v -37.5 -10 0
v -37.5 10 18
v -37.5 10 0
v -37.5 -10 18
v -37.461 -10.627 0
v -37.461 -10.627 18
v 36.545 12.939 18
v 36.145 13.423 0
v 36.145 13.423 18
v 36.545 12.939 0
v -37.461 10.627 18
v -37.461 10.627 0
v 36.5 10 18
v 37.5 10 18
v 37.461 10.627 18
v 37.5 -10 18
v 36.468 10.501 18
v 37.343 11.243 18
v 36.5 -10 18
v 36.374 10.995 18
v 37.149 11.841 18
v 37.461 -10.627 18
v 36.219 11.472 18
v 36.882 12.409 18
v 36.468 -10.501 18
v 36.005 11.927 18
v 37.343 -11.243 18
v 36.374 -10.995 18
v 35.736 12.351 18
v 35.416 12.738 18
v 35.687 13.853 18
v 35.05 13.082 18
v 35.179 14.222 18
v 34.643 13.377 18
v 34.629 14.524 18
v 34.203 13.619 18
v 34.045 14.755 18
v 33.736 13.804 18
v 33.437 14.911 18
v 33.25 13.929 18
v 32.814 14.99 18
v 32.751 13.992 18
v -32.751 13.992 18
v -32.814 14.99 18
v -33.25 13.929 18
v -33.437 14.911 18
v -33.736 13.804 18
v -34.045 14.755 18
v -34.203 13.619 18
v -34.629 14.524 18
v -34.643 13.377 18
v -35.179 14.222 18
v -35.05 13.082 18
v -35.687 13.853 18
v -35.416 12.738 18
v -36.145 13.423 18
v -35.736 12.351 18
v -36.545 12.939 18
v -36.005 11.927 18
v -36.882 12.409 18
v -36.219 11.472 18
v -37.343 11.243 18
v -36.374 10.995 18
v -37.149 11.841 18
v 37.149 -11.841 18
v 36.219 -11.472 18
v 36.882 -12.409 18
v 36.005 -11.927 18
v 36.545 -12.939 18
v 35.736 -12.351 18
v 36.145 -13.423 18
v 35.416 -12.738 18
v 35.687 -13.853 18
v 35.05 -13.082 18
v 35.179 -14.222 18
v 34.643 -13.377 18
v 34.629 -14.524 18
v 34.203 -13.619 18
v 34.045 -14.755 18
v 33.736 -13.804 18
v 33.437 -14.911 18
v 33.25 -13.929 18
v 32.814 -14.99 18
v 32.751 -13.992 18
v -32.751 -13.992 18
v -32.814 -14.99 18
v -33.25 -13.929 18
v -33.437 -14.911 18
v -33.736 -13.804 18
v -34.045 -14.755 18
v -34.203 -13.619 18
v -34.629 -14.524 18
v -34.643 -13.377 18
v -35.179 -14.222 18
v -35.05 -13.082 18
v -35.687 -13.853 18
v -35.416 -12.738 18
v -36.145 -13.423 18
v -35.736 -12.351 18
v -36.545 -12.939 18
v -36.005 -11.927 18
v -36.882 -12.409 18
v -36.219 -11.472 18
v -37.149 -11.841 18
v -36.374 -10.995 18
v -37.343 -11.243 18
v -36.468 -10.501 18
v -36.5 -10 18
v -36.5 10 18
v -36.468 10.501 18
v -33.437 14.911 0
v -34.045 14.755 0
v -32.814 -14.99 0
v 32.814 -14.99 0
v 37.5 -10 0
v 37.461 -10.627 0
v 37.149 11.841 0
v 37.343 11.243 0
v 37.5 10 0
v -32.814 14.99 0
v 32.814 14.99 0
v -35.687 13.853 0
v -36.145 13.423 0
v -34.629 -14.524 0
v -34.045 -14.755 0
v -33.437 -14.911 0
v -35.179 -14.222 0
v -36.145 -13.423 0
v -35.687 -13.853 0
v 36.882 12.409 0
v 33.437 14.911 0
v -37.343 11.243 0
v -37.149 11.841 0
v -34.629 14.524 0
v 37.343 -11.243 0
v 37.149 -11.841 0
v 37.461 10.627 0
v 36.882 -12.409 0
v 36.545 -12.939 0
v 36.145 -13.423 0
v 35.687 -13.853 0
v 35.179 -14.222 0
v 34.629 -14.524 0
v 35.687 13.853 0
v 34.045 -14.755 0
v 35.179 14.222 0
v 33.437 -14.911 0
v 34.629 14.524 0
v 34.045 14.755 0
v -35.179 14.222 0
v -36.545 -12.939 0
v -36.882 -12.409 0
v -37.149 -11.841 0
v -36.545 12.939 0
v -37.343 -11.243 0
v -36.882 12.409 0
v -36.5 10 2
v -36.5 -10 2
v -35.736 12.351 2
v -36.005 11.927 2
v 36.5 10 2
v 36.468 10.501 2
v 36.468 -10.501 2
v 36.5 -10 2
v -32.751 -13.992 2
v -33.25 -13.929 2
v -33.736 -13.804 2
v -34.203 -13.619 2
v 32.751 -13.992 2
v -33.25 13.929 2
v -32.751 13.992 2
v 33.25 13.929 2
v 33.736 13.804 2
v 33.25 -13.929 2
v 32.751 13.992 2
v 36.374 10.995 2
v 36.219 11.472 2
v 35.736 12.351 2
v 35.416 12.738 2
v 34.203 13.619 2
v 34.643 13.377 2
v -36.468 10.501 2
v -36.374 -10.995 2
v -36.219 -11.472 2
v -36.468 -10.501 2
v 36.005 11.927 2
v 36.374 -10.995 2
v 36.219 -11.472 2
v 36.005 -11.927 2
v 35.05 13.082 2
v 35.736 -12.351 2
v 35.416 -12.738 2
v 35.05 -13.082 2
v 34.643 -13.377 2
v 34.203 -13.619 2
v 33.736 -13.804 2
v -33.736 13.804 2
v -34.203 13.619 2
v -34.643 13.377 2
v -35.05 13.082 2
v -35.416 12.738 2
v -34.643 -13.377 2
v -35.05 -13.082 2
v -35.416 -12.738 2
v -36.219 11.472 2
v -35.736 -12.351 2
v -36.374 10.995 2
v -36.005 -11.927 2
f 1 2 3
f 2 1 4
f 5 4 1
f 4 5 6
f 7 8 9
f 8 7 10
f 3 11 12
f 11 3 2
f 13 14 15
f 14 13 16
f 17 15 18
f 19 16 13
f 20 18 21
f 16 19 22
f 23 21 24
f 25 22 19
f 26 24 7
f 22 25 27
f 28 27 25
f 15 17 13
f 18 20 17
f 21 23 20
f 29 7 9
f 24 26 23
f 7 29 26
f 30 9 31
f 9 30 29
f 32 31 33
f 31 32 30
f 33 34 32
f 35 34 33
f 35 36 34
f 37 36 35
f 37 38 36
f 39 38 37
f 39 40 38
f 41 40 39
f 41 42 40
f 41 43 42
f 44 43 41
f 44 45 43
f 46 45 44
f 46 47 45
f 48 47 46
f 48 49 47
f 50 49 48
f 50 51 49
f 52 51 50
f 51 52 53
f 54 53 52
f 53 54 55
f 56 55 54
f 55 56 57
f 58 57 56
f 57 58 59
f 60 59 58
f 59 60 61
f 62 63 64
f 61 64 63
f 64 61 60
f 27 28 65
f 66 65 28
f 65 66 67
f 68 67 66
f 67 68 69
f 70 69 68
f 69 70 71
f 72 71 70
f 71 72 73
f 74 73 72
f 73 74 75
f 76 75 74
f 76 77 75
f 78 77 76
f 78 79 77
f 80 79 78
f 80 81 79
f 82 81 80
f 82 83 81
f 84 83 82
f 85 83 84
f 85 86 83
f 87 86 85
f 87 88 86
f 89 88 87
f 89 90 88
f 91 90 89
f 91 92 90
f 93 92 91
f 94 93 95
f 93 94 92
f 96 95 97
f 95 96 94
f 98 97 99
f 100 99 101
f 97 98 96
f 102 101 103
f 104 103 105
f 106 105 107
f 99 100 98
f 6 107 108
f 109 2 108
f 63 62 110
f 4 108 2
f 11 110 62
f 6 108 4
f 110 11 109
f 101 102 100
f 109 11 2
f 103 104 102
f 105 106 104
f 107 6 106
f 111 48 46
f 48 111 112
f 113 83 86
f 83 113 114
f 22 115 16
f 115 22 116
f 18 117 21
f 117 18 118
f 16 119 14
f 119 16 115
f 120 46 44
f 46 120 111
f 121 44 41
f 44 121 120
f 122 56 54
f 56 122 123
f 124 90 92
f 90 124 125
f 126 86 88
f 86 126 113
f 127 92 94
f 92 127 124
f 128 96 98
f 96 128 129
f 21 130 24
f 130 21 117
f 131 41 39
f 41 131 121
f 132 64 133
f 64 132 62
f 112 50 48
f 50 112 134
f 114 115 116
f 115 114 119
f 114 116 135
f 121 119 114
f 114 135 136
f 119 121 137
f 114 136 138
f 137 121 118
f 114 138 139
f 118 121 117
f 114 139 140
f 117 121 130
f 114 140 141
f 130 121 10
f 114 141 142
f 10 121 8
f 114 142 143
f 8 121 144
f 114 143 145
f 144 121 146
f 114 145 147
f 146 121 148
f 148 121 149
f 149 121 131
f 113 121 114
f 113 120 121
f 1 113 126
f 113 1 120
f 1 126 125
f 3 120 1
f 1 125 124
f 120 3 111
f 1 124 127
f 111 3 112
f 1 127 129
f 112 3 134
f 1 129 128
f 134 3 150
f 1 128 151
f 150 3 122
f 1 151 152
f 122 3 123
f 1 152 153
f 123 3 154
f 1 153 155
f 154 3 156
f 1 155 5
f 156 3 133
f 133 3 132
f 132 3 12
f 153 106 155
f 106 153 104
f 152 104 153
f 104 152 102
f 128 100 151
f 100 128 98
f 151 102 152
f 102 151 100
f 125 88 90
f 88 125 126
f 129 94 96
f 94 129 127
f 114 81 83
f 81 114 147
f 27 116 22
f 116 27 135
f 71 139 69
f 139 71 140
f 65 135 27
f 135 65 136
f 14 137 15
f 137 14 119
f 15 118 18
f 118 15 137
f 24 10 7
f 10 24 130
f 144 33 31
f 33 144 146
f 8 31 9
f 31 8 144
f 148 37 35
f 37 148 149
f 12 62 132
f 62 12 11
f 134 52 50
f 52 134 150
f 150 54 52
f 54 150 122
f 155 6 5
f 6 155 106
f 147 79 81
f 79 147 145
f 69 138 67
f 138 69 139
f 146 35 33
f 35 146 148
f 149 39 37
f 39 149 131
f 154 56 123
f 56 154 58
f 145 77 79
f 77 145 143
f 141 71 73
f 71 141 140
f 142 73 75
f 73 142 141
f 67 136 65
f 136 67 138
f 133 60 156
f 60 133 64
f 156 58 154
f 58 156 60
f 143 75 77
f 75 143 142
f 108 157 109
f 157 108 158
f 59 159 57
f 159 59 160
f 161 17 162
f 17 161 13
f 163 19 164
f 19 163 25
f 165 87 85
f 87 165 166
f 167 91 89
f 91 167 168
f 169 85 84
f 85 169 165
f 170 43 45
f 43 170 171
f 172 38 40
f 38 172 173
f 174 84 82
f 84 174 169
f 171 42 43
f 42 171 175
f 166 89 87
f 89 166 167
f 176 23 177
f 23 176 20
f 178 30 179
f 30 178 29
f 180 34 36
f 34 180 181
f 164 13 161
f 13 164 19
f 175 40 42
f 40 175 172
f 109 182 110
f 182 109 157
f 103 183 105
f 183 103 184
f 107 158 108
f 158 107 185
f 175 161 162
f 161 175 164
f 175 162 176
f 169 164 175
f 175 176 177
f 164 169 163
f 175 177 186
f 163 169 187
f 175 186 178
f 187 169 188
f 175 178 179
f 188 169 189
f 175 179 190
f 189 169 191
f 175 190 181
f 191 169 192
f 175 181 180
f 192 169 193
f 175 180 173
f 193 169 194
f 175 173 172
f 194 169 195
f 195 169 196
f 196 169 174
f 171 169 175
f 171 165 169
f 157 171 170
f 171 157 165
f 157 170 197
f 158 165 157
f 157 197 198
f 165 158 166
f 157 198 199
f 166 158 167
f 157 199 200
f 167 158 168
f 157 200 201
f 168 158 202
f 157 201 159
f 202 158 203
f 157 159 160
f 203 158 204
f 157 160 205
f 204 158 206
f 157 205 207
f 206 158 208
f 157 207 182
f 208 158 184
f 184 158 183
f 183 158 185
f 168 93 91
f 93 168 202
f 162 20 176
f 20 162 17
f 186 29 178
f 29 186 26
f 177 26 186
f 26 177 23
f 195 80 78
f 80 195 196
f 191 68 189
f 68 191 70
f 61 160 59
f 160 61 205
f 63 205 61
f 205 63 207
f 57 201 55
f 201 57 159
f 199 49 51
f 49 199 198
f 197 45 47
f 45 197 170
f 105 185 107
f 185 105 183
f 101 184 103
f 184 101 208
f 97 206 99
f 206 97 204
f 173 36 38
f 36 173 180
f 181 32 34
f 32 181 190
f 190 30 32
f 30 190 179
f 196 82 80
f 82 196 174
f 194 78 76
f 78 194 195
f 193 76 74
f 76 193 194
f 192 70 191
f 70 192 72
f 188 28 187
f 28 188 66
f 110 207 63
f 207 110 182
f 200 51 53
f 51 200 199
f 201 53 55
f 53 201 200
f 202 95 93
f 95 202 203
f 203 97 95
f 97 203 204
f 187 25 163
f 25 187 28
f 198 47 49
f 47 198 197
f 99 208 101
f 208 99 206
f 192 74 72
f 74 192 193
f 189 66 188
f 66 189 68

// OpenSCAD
$fn = 50;


difference() {
	union() {
		hull() {
			translate(v = [-32.5000000000, 10.0000000000, 0]) {
				cylinder(h = 18, r = 5);
			}
			translate(v = [32.5000000000, 10.0000000000, 0]) {
				cylinder(h = 18, r = 5);
			}
			translate(v = [-32.5000000000, -10.0000000000, 0]) {
				cylinder(h = 18, r = 5);
			}
			translate(v = [32.5000000000, -10.0000000000, 0]) {
				cylinder(h = 18, r = 5);
			}
		}
	}
	union() {
		translate(v = [0, 0, 2]) {
			hull() {
				translate(v = [-32.5000000000, 10.0000000000, 0]) {
					cylinder(h = 16, r = 4);
				}
				translate(v = [32.5000000000, 10.0000000000, 0]) {
					cylinder(h = 16, r = 4);
				}
				translate(v = [-32.5000000000, -10.0000000000, 0]) {
					cylinder(h = 16, r = 4);
				}
				translate(v = [32.5000000000, -10.0000000000, 0]) {
					cylinder(h = 16, r = 4);
				}
			}
		}
	}
}
